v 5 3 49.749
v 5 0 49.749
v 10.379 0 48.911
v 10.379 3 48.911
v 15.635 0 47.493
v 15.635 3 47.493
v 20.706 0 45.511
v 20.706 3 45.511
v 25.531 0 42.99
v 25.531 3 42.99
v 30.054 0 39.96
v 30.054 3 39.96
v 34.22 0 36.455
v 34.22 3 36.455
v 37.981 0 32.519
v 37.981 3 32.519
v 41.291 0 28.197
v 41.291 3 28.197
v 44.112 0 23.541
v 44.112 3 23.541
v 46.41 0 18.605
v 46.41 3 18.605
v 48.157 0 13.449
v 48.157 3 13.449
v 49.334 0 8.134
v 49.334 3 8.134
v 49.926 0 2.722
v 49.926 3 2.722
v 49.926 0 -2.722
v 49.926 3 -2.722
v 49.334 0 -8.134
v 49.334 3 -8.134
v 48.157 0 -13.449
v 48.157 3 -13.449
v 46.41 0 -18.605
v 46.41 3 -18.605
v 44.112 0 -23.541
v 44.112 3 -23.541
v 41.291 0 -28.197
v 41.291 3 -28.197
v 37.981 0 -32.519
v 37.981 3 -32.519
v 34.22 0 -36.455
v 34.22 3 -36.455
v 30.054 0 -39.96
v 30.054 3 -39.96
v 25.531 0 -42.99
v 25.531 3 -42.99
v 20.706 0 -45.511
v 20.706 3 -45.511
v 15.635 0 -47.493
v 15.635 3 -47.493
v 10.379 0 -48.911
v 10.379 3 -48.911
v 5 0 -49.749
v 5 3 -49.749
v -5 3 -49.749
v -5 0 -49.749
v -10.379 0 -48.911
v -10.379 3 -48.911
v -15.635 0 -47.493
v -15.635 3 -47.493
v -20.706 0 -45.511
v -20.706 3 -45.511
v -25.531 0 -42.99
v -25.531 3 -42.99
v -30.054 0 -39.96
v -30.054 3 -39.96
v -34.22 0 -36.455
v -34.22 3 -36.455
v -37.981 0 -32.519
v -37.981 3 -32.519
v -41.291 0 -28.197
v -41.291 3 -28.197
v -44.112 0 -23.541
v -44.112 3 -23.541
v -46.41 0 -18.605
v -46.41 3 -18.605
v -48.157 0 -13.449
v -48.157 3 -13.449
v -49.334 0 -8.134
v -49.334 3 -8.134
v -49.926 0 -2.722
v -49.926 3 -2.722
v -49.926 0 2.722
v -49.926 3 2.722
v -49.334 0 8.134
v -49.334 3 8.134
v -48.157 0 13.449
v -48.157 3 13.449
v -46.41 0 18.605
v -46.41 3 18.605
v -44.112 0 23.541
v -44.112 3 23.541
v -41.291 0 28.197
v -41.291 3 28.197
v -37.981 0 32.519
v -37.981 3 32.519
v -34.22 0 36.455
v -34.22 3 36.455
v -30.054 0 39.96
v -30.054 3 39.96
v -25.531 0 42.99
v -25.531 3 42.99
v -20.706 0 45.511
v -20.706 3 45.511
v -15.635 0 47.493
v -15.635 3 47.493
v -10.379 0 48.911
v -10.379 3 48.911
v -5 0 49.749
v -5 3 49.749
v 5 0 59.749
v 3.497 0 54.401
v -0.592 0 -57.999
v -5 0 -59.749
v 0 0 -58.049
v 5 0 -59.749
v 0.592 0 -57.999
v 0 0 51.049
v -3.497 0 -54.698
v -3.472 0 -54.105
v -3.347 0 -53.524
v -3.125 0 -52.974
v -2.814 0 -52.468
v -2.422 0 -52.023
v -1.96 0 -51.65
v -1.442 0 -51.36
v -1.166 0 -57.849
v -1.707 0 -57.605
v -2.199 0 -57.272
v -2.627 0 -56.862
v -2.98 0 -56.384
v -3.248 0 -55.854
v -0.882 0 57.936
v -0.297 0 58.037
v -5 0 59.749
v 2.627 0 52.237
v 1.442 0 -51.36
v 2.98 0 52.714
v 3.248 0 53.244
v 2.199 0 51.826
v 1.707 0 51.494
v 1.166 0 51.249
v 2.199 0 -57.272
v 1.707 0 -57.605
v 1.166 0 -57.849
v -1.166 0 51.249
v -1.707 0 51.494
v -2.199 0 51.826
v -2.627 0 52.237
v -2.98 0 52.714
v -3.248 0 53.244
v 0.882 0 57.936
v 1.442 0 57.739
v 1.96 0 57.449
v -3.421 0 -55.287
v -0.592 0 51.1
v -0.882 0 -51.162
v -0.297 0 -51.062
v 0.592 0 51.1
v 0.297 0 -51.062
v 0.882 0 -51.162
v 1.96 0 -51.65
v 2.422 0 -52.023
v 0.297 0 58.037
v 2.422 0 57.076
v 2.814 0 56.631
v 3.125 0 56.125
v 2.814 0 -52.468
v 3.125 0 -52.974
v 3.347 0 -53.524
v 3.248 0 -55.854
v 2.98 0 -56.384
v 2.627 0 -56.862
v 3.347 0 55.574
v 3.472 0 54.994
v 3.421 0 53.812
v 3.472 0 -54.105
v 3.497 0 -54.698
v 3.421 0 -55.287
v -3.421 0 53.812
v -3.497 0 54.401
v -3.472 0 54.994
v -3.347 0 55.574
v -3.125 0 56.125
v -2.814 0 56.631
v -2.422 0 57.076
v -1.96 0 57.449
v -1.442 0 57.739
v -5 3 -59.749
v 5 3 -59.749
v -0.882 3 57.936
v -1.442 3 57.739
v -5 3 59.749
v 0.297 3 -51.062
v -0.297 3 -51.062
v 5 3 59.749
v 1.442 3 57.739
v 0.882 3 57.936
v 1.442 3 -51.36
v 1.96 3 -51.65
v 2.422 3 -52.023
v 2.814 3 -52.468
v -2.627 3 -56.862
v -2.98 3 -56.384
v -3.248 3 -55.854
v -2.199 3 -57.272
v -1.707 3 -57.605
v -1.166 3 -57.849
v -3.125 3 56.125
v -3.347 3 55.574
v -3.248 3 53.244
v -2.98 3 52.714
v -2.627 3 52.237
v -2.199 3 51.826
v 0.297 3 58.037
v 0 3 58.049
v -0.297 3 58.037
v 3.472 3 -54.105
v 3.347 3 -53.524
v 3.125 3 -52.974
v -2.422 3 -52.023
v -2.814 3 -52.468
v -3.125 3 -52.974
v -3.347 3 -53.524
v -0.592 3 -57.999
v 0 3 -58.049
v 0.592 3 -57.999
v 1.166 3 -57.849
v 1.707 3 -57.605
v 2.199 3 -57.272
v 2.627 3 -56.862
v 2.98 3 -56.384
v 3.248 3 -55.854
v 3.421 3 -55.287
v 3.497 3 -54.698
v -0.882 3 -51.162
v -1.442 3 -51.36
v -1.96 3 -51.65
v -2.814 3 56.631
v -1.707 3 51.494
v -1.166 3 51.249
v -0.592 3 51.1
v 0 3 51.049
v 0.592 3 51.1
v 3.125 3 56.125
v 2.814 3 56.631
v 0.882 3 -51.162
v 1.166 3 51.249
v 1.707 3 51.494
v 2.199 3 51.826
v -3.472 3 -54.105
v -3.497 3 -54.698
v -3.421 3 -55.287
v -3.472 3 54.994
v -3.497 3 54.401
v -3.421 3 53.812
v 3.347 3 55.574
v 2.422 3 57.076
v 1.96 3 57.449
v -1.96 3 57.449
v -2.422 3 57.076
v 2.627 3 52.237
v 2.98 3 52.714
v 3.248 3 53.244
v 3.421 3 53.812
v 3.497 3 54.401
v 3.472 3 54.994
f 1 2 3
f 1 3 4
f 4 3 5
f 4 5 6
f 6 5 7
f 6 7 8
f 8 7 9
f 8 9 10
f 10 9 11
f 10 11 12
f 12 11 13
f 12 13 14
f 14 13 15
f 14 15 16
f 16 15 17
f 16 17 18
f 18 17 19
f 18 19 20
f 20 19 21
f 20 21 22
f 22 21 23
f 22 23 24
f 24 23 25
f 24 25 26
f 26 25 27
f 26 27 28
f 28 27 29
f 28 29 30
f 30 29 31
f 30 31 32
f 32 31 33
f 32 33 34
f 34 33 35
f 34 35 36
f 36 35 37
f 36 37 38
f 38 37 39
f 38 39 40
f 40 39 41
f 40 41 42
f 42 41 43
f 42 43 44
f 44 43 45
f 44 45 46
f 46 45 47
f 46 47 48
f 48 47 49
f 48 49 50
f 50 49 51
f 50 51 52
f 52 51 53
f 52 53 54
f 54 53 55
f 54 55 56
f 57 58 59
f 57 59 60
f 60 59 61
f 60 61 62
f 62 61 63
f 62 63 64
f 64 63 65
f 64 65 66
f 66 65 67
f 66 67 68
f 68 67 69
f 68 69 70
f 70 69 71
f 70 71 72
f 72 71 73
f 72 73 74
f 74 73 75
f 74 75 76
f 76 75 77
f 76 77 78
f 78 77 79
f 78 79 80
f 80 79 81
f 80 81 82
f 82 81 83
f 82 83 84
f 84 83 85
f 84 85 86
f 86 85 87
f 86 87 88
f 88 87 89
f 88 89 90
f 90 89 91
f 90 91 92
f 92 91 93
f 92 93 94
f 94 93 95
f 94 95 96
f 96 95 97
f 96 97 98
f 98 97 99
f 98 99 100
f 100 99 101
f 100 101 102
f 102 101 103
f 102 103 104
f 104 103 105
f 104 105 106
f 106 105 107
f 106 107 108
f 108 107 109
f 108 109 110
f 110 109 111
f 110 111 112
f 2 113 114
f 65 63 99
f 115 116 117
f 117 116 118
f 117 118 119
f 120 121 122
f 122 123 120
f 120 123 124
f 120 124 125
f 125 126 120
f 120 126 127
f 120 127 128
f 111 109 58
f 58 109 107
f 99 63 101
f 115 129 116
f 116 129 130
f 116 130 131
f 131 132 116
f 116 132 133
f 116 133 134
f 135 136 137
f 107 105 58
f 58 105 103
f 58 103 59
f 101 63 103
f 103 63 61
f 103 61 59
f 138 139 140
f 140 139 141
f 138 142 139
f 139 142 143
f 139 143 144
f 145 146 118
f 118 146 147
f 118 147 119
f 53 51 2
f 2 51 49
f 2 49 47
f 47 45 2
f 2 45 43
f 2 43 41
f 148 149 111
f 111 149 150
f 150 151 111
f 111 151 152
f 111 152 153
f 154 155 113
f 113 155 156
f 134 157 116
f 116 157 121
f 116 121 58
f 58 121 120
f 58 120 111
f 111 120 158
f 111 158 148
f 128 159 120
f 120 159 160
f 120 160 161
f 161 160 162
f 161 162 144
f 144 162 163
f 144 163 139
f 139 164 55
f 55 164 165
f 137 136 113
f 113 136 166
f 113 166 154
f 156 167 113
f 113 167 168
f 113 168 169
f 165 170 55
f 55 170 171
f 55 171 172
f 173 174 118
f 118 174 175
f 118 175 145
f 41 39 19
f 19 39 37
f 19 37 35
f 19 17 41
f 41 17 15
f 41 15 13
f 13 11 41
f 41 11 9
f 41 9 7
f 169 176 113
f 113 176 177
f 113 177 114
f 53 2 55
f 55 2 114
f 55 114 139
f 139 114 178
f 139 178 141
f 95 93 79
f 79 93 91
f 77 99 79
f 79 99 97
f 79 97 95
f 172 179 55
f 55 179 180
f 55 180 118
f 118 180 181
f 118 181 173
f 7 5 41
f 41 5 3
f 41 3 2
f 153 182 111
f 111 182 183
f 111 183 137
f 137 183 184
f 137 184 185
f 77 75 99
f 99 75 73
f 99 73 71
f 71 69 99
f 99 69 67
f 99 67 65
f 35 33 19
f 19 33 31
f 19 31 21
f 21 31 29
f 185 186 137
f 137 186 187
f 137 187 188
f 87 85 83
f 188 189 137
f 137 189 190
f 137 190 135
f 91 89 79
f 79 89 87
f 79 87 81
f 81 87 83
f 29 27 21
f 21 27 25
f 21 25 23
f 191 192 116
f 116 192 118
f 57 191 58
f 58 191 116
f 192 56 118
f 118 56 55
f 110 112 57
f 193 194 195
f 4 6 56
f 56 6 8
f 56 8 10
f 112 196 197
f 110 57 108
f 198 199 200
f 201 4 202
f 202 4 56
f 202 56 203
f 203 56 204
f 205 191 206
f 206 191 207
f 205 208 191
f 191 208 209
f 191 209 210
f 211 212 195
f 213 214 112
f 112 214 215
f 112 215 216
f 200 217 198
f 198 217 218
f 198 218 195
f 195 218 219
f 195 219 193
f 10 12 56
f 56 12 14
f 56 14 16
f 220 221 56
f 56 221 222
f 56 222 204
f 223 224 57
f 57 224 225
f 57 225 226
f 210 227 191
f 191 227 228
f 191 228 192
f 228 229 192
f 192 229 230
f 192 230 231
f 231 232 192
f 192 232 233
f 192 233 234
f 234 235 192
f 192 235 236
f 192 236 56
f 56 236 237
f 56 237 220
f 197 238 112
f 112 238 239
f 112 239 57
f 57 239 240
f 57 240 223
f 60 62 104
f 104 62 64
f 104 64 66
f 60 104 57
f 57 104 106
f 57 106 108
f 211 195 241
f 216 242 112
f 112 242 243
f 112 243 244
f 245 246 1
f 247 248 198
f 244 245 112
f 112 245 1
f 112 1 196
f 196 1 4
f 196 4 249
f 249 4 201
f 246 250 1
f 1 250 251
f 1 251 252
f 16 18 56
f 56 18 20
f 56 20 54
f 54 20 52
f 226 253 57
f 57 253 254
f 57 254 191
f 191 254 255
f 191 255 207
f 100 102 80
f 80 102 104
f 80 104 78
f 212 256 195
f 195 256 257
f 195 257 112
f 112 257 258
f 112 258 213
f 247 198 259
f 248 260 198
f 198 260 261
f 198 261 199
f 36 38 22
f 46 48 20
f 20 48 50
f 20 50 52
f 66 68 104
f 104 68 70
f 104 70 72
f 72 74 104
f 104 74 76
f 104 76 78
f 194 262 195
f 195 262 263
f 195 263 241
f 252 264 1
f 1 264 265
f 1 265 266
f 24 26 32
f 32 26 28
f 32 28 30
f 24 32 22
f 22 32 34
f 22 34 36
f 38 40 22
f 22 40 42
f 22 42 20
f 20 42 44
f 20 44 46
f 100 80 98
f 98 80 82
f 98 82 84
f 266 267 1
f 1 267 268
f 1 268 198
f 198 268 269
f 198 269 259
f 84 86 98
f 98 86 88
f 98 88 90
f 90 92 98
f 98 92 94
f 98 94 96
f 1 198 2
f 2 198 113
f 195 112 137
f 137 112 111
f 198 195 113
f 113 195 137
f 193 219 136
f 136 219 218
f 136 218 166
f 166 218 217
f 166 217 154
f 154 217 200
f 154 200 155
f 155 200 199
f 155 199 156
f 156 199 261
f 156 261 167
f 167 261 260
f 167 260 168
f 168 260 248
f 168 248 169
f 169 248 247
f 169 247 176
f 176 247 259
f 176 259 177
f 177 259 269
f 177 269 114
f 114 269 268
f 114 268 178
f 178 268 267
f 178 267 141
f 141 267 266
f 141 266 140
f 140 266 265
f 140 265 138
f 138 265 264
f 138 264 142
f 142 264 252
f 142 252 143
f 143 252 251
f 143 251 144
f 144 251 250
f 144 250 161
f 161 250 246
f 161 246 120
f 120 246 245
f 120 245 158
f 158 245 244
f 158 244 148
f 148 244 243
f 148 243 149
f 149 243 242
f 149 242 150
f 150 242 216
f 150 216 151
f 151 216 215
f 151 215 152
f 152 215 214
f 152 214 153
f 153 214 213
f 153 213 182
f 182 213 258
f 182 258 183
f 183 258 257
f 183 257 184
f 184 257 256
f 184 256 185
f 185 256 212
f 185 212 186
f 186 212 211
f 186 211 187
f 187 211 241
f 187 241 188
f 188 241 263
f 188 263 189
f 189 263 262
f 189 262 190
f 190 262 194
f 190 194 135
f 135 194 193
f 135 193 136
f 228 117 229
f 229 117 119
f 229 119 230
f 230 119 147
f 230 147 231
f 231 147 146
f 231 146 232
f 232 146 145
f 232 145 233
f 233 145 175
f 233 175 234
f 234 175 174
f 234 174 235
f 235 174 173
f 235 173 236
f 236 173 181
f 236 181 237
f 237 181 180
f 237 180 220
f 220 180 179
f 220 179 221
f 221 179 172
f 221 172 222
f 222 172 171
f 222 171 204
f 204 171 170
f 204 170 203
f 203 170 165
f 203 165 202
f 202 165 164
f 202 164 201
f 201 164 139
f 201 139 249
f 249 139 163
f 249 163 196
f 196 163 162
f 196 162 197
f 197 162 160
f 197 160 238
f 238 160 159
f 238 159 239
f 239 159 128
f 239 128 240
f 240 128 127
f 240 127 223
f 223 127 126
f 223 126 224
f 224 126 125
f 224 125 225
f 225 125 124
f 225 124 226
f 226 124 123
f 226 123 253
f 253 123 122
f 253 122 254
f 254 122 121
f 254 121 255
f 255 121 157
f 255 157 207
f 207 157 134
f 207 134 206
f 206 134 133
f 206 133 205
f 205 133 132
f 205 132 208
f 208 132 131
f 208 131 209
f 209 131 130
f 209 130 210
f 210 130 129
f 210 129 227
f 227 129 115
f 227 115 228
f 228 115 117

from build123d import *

# Parameters (mm, degrees)
SKETCH2_R               = 50
BOSS_EXTRUDE1_DEPTH     = 12
SKETCH3_R               = 48
CUT_EXTRUDE1_DEPTH      = 10
SKETCH7_W               = 10
SKETCH7_H               = 10
BOSS_EXTRUDE12_DEPTH    = 3
SKETCH8_W               = 10
SKETCH8_H               = 10
BOSS_EXTRUDE13_DEPTH    = 3
SKETCH9_R               = 3.5
CUT_EXTRUDE2_DEPTH      = 10
SKETCH10_R              = 3.5
CUT_EXTRUDE3_DEPTH      = 10
CUT_EXTRUDE4_DEPTH      = 100
CUT_EXTRUDE4_DEPTH_BACK = 100
SKETCH11_W              = 125.880590586
SKETCH11_H              = 15.914036276
BOSS_EXTRUDE15_START    = -3
SKETCH12_R              = 48
BOSS_EXTRUDE15_DEPTH    = 3


with BuildPart() as part:
    # Sketch2 → Boss-Extrude1 (new body)
    with BuildSketch(Plane(origin=(0, 0, 0), x_dir=(1, 0, 0), z_dir=(0, 1, 0))):
        Circle(SKETCH2_R)
    extrude(amount=BOSS_EXTRUDE1_DEPTH)

    # Sketch3 → Cut-Extrude1 (cut)
    with BuildSketch(Plane.XZ):
        Circle(SKETCH3_R)
    extrude(amount=-CUT_EXTRUDE1_DEPTH, mode=Mode.SUBTRACT)

    # Sketch7 → Boss-Extrude12 (add)
    with BuildSketch(Plane(origin=(0, 0, 0), x_dir=(-1, 0, 0), z_dir=(0, -1, 0))):
        with Locations((0, 54.749371855)):
            Rectangle(SKETCH7_W, SKETCH7_H)
    extrude(amount=-BOSS_EXTRUDE12_DEPTH)

    # Sketch8 → Boss-Extrude13 (add)
    with BuildSketch(Plane(origin=(0, 0, 0), x_dir=(-1, 0, 0), z_dir=(0, -1, 0))):
        with Locations((0, -54.749371855)):
            Rectangle(SKETCH8_W, SKETCH8_H)
    extrude(amount=-BOSS_EXTRUDE13_DEPTH)

    # Sketch9 → Cut-Extrude2 (cut)
    with BuildSketch(Plane.XZ):
        with Locations((0, 54.549371855)):
            Circle(SKETCH9_R)
    extrude(amount=-CUT_EXTRUDE2_DEPTH, mode=Mode.SUBTRACT)

    # Sketch10 → Cut-Extrude3 (cut)
    with BuildSketch(Plane.XZ):
        with Locations((0, -54.549371855)):
            Circle(SKETCH10_R)
    extrude(amount=-CUT_EXTRUDE3_DEPTH, mode=Mode.SUBTRACT)

    # Sketch11 → Cut-Extrude4 (cut, two sides: drawn at the far end of the back side and taken through both)
    with BuildSketch(Plane(origin=(5, 0, 0), x_dir=(0, 0, -1), z_dir=(1, 0, 0)).offset(-CUT_EXTRUDE4_DEPTH_BACK)):
        with Locations((3.190923438, 10.957018138)):
            Rectangle(SKETCH11_W, SKETCH11_H)
    extrude(amount=CUT_EXTRUDE4_DEPTH + CUT_EXTRUDE4_DEPTH_BACK, mode=Mode.SUBTRACT)

    # Sketch12 → Boss-Extrude15 (add)
    with BuildSketch(Plane(origin=(0, 3, 0), x_dir=(1, 0, 0), z_dir=(0, 1, 0)).offset(BOSS_EXTRUDE15_START)):
        Circle(SKETCH12_R)
    extrude(amount=BOSS_EXTRUDE15_DEPTH)


solid = part.part
